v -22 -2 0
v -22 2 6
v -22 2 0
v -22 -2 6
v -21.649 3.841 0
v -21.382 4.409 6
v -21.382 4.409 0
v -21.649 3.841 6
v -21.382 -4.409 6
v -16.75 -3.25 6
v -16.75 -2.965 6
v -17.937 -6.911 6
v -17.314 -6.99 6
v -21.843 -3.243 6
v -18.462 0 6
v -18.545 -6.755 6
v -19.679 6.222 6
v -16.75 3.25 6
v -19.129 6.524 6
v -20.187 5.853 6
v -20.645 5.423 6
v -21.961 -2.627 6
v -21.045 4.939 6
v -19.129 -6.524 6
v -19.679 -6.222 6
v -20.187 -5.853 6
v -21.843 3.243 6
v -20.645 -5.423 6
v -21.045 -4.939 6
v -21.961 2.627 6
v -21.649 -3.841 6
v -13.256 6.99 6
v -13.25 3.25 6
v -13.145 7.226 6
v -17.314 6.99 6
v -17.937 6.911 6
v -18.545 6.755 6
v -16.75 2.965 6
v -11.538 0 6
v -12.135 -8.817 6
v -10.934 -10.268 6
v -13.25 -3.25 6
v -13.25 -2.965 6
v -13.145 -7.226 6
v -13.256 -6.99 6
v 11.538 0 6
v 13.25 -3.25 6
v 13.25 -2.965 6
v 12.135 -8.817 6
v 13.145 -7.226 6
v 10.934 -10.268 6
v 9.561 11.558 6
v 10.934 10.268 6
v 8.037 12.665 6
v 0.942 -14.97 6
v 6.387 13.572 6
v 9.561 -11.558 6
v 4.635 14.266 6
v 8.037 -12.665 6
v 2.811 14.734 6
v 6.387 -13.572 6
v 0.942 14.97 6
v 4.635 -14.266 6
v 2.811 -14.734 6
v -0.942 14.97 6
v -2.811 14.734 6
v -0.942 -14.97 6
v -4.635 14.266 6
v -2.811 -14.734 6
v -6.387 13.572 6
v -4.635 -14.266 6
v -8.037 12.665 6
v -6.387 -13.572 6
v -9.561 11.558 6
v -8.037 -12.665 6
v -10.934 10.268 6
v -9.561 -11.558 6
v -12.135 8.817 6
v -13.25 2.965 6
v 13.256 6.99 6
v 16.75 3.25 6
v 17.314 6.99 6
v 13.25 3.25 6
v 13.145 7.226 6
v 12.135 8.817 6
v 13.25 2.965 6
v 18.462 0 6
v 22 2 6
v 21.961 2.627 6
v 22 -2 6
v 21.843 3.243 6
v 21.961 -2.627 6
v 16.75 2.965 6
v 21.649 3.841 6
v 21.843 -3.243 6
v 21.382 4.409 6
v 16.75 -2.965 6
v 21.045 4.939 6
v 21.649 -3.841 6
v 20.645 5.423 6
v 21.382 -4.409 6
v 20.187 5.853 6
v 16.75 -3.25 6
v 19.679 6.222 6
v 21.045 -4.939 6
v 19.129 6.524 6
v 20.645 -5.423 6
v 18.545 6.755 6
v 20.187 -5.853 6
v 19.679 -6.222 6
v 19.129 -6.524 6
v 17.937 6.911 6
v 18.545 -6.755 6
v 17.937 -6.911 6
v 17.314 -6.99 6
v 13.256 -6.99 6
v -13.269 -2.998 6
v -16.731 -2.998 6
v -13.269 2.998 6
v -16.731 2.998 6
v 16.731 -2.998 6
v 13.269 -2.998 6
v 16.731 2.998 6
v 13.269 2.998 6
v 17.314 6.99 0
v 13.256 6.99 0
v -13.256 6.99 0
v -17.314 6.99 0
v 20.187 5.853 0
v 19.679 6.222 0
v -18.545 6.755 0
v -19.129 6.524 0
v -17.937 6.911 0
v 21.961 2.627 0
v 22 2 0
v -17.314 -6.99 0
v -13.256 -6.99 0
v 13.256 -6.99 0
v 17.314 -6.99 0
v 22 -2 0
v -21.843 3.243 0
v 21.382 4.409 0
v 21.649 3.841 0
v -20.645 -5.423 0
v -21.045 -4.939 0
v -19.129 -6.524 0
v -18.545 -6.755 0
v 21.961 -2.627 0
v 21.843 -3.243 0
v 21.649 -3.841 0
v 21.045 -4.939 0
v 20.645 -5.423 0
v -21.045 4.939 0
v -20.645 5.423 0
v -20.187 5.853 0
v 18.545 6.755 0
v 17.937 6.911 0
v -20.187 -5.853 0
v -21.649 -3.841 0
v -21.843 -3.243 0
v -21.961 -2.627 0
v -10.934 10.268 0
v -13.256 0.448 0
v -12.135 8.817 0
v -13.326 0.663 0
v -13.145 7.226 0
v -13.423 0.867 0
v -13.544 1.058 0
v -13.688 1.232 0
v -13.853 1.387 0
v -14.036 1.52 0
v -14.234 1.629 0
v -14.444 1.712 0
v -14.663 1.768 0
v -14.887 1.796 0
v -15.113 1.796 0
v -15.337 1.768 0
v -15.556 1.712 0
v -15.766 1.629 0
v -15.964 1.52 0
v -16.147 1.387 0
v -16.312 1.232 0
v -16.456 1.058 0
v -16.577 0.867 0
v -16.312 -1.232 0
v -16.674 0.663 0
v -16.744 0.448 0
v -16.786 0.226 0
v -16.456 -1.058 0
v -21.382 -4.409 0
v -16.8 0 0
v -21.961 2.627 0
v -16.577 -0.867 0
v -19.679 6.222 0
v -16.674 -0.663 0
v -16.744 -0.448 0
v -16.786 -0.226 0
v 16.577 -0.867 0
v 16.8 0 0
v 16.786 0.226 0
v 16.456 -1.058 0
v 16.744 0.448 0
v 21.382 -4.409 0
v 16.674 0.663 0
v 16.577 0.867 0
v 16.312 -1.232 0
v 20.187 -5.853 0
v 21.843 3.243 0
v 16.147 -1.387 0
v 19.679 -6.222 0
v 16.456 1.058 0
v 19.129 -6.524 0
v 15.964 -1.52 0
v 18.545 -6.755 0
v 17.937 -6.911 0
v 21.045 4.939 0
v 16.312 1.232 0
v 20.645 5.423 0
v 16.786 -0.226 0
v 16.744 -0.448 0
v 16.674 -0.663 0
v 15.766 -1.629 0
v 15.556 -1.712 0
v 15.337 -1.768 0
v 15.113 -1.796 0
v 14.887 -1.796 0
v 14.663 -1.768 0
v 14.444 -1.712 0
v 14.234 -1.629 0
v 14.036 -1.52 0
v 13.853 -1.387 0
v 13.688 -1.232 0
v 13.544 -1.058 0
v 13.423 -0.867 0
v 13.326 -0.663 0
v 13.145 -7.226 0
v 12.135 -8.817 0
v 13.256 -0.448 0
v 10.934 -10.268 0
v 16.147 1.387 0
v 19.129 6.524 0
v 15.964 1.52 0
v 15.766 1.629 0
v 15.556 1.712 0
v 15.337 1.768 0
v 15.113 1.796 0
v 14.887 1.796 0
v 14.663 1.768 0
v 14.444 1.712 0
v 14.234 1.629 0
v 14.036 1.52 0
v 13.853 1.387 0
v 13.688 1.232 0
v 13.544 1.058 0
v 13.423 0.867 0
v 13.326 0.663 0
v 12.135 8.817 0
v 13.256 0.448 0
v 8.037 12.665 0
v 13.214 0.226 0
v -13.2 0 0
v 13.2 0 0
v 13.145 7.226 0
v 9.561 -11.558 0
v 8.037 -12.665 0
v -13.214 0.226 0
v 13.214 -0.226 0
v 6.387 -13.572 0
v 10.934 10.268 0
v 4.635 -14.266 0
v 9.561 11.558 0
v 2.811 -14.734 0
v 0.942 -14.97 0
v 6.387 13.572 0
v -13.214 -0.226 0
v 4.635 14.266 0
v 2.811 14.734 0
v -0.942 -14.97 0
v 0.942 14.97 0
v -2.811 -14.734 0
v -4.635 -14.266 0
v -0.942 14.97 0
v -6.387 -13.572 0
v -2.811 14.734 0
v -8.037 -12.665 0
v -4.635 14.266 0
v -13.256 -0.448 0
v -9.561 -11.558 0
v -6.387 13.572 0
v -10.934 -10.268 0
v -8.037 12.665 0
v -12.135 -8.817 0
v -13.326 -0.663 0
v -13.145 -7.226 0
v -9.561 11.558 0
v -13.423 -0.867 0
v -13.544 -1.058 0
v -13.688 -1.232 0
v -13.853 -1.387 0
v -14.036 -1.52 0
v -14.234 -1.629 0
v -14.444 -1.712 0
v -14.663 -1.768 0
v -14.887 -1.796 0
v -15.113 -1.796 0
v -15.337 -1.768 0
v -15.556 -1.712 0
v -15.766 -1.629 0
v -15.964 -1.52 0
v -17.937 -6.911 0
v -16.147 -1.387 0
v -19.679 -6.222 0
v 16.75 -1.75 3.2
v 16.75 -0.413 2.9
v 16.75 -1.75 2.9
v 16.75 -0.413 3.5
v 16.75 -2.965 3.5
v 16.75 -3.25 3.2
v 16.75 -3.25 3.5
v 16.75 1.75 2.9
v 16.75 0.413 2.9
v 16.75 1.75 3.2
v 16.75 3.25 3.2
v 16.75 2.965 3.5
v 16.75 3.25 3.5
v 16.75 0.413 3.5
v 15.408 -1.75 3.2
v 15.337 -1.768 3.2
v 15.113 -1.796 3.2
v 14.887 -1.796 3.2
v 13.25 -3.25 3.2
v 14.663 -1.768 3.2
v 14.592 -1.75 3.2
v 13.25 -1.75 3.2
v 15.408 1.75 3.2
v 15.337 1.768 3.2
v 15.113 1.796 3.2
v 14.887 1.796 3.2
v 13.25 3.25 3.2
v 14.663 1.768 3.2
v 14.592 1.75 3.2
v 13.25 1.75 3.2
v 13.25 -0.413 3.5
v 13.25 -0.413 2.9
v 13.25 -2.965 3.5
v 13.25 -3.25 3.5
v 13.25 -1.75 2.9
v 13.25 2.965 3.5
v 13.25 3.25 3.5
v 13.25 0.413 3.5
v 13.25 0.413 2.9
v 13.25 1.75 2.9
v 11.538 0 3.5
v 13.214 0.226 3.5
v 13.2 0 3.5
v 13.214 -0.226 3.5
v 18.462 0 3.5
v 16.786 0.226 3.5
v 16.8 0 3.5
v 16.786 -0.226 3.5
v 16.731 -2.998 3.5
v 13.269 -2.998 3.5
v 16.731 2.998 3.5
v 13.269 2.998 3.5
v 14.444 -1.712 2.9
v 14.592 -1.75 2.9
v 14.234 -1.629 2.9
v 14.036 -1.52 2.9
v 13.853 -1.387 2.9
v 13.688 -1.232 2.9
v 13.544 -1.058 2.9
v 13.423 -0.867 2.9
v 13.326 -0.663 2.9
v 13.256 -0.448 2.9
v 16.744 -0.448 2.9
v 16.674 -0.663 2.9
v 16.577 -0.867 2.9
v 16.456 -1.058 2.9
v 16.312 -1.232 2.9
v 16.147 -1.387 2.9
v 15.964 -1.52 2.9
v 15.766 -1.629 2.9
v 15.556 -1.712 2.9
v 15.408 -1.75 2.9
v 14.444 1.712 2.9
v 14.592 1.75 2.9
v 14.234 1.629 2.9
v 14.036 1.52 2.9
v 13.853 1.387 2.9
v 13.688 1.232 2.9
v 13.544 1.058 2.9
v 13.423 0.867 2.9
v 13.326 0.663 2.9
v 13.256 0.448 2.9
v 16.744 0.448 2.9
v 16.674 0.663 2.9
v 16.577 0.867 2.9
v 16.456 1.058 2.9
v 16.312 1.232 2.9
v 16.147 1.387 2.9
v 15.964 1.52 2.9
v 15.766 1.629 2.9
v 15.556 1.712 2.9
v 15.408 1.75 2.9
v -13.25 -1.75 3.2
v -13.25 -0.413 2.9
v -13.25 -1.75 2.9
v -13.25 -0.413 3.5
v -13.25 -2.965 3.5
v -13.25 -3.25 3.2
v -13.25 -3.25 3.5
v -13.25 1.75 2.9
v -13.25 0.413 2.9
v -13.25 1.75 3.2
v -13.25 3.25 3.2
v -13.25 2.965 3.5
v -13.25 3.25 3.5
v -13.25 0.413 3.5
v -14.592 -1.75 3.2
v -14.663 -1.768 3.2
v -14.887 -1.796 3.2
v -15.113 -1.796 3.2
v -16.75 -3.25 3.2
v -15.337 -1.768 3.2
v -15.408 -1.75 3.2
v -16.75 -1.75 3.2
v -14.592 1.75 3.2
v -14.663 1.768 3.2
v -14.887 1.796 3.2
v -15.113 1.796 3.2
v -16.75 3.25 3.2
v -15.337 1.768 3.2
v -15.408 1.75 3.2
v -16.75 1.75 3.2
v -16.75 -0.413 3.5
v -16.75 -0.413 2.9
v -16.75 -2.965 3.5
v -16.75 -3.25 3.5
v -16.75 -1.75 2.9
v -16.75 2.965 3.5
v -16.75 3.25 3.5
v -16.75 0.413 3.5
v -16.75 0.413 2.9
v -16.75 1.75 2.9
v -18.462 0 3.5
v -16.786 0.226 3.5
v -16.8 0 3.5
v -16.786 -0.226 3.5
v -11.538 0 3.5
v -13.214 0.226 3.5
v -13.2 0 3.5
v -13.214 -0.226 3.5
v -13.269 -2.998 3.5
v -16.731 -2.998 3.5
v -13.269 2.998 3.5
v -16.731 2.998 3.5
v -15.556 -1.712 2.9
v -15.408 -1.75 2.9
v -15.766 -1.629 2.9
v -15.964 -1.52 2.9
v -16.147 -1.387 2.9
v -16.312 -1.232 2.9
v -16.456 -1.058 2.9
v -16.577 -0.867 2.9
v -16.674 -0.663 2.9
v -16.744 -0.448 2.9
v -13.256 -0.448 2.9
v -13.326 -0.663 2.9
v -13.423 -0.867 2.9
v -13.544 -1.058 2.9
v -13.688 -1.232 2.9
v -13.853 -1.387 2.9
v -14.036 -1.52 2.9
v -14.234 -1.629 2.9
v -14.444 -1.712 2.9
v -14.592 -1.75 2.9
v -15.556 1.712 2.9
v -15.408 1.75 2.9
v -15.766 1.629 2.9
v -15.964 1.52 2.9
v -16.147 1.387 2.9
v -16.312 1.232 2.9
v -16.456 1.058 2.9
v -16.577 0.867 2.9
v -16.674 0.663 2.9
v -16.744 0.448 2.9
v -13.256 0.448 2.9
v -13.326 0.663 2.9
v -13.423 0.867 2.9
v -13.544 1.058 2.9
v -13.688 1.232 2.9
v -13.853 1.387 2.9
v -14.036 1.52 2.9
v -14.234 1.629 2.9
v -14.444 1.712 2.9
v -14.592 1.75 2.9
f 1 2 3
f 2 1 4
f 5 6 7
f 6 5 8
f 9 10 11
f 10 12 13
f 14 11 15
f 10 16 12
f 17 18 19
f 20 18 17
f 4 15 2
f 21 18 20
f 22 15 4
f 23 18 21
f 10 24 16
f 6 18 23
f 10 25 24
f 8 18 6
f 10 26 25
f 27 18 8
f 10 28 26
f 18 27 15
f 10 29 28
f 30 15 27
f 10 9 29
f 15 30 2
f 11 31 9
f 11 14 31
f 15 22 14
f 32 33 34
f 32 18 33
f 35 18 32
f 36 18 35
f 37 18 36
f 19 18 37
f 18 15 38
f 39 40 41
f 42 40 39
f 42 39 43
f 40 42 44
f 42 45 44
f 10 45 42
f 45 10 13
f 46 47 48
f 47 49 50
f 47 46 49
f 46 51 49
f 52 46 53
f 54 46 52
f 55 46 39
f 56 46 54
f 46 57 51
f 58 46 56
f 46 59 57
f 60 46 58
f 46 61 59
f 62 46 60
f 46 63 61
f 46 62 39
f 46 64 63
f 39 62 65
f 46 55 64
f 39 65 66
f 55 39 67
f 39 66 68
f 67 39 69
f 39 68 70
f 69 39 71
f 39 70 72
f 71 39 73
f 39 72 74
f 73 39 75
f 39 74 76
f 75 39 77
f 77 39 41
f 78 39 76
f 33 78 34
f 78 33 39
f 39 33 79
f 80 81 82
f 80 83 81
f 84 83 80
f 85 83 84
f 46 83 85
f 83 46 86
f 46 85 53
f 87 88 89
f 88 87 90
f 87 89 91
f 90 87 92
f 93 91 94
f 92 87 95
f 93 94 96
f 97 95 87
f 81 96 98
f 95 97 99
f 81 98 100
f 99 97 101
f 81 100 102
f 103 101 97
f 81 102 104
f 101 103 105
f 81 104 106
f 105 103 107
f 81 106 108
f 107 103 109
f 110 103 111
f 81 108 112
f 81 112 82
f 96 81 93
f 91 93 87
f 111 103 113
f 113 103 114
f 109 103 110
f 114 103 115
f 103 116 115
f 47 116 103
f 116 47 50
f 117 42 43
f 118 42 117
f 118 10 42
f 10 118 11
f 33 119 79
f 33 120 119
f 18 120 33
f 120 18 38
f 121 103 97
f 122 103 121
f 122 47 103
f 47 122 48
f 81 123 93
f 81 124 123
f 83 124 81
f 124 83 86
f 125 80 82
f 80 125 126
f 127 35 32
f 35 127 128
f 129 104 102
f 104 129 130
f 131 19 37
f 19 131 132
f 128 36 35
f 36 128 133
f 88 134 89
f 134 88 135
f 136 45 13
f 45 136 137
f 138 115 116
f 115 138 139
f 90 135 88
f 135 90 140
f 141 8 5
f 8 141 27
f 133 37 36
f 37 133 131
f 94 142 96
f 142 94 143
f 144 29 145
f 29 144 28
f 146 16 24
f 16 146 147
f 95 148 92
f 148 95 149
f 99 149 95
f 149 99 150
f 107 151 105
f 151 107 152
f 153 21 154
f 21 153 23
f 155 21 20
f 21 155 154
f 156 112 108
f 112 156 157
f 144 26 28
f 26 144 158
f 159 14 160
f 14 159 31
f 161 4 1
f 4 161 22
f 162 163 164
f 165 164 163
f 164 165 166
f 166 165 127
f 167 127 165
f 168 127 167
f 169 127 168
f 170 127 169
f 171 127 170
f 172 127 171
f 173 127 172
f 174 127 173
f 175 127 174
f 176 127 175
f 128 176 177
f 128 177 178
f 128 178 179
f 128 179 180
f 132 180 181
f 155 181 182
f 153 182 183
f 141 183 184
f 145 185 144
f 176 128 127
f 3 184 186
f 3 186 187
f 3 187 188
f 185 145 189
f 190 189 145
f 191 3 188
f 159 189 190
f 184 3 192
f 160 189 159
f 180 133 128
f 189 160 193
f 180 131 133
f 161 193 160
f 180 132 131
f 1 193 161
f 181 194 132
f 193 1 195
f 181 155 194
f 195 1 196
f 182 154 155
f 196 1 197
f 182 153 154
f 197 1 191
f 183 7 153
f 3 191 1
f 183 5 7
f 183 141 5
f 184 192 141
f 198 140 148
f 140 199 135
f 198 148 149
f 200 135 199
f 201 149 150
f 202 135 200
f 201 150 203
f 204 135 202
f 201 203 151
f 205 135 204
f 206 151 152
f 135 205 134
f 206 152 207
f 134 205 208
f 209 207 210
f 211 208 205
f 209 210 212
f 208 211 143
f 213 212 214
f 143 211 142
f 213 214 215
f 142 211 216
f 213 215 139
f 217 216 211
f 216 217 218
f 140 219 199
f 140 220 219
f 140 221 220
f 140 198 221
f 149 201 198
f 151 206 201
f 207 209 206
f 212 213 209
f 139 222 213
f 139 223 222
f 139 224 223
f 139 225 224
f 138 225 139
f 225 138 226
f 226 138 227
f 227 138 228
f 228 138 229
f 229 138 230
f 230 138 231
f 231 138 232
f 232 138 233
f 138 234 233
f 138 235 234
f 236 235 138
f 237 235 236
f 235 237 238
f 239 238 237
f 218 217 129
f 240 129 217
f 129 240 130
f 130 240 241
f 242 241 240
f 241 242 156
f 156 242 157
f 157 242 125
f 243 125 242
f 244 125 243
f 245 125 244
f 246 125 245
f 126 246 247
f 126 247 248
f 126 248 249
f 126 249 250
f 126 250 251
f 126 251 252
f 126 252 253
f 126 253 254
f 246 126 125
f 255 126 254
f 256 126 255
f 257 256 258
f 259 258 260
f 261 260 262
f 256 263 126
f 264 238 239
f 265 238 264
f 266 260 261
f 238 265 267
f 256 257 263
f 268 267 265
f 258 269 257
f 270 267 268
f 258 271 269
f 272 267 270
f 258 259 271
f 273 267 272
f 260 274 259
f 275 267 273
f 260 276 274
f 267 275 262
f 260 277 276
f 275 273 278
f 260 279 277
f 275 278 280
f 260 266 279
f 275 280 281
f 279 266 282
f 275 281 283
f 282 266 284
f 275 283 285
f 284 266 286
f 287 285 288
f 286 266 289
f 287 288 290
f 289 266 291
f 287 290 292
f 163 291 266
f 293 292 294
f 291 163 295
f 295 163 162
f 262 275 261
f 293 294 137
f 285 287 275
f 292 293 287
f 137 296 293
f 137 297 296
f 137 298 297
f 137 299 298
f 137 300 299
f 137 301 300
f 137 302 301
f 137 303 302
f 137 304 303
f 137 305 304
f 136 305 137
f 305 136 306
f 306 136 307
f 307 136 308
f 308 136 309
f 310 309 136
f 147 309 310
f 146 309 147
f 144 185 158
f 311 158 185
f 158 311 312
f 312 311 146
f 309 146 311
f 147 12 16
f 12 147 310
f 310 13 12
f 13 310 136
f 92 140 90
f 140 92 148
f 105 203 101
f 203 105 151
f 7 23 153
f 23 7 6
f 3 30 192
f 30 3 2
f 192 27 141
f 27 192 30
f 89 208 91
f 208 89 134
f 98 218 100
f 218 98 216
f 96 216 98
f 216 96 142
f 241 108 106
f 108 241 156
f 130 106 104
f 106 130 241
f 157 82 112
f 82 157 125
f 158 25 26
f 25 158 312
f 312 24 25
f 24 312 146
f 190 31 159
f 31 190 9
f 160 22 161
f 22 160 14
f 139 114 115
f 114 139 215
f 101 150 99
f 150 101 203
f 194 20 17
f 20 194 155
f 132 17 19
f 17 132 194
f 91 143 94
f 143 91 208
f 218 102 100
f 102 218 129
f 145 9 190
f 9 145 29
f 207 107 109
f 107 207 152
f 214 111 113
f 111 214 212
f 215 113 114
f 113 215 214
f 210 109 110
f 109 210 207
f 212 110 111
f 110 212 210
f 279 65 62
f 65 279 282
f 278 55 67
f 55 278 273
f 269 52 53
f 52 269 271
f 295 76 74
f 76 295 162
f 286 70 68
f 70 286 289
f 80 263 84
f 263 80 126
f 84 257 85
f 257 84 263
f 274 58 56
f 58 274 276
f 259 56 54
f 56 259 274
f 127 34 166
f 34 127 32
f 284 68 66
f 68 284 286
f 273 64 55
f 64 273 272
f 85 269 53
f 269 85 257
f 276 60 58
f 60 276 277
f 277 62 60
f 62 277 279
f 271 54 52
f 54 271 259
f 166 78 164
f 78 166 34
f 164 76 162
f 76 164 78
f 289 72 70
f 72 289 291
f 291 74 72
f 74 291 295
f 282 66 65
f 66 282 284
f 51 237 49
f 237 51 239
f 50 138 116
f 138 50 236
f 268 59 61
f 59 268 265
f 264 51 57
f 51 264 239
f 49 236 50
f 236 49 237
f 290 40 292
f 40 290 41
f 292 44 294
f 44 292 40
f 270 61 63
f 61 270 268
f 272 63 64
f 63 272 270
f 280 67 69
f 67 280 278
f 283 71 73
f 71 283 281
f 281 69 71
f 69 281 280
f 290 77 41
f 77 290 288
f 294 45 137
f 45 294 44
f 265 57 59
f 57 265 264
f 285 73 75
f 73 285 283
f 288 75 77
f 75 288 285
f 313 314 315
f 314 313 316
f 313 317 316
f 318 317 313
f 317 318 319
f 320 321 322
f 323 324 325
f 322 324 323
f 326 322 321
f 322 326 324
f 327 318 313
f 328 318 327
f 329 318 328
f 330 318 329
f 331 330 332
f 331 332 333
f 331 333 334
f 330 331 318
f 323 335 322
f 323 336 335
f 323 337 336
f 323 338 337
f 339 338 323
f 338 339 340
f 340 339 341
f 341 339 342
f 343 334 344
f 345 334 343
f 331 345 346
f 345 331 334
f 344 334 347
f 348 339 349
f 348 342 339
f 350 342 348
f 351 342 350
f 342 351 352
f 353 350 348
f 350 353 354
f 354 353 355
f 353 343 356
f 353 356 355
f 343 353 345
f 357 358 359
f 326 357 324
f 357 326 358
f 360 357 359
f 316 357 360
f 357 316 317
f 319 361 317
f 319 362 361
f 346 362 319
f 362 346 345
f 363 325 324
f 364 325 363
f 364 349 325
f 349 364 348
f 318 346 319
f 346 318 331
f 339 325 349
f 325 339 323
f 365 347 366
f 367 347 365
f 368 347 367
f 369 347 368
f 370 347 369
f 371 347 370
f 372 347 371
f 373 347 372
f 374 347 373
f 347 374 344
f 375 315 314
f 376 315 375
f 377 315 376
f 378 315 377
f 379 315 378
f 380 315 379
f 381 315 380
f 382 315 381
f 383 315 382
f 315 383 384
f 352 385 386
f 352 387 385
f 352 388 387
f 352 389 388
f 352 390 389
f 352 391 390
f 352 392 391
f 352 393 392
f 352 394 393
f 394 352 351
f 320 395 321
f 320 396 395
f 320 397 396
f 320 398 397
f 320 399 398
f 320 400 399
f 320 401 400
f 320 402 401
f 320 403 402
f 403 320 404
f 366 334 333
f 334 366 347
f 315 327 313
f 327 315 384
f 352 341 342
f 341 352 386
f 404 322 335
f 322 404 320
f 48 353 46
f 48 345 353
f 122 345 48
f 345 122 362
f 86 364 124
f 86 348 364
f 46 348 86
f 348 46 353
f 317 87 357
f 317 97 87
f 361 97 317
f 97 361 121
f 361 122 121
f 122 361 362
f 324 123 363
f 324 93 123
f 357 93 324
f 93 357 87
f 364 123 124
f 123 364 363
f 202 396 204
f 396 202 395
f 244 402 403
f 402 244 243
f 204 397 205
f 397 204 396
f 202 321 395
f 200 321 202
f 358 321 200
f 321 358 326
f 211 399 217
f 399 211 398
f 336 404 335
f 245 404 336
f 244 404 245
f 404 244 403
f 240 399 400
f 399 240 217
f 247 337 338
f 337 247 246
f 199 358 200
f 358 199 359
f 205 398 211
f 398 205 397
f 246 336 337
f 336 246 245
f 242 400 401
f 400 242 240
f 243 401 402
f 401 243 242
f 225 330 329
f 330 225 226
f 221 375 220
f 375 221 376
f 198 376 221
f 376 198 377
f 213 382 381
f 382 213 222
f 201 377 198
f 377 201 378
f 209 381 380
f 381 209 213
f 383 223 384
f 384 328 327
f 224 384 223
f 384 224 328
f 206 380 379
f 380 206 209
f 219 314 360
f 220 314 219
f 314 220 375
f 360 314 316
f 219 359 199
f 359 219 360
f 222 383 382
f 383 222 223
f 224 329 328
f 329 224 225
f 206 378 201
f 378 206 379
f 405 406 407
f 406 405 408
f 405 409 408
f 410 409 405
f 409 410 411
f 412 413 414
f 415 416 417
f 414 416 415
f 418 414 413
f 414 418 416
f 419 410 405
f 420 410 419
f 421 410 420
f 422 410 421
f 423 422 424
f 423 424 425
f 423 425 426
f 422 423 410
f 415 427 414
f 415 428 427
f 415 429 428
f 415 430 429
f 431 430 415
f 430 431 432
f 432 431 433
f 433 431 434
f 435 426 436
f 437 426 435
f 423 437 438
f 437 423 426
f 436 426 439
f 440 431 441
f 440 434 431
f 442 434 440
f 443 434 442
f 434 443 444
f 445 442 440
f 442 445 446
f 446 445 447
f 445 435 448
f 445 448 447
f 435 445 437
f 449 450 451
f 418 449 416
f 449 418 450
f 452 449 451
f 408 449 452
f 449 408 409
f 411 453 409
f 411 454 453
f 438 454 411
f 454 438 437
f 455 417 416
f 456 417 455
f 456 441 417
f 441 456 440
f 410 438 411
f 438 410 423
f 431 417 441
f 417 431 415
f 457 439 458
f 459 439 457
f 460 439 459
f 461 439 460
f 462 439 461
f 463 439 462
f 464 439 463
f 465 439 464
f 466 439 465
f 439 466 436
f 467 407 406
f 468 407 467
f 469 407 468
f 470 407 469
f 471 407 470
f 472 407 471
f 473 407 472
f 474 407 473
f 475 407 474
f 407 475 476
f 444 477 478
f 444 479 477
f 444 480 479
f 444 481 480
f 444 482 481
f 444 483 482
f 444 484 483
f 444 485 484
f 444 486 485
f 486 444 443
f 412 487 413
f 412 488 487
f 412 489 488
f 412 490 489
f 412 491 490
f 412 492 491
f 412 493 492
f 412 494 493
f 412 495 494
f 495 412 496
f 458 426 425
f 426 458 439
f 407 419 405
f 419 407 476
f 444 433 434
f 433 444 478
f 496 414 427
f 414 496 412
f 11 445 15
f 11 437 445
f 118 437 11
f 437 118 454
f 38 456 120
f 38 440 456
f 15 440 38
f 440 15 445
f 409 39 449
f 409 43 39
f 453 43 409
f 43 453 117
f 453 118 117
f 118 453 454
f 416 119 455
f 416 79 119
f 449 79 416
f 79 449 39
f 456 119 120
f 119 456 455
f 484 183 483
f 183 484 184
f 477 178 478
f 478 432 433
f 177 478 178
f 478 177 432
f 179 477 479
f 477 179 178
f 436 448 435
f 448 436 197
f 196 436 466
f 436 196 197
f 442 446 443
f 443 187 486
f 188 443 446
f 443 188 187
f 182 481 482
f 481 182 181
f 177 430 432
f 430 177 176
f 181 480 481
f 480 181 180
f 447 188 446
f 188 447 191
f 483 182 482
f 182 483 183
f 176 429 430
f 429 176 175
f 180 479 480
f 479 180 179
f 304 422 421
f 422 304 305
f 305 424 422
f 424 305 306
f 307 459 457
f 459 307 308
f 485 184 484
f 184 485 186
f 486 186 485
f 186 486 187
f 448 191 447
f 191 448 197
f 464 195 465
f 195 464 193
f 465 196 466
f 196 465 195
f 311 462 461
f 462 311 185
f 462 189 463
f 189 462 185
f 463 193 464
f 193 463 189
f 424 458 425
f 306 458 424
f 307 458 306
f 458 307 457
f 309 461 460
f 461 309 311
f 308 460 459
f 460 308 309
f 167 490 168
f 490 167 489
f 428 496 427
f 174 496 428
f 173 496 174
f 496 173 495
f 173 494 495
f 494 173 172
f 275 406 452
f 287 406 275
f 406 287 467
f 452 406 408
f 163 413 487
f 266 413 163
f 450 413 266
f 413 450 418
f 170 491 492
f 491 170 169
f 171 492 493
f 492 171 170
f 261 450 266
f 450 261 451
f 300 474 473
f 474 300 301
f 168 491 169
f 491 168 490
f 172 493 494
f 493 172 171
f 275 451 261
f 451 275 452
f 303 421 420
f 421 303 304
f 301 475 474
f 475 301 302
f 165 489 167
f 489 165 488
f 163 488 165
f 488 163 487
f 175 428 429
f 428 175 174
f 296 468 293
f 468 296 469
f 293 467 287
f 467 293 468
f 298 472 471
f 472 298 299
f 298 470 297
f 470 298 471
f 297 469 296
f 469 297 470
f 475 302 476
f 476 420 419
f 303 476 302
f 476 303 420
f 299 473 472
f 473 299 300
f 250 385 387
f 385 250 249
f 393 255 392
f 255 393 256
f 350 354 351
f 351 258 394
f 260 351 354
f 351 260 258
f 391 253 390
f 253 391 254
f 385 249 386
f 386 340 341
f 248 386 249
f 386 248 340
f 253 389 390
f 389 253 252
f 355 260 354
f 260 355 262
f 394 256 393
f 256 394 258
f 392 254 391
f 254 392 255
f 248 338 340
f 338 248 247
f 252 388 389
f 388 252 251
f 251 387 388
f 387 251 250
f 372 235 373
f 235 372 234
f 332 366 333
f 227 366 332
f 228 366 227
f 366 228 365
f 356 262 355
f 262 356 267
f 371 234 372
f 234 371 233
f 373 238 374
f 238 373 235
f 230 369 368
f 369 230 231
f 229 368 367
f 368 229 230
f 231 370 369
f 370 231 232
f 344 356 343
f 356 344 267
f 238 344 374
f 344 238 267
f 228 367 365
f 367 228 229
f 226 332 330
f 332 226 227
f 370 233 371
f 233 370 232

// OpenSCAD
$fn = 50;


difference() {
	union() {
		hull() {
			translate(v = [-17.0000000000, 2.0000000000, 0]) {
				cylinder(h = 6, r = 5);
			}
			translate(v = [17.0000000000, 2.0000000000, 0]) {
				cylinder(h = 6, r = 5);
			}
			translate(v = [-17.0000000000, -2.0000000000, 0]) {
				cylinder(h = 6, r = 5);
			}
			translate(v = [17.0000000000, -2.0000000000, 0]) {
				cylinder(h = 6, r = 5);
			}
		}
		cylinder(h = 6, r = 15.0000000000);
	}
	union() {
		translate(v = [15.0000000000, 0, -20]) {
			rotate(a = [0, 180, 0]) {
				difference() {
					union() {
						translate(v = [0, 0, -26.0000000000]) {
							rotate(a = [0, 0, 0]) {
								difference() {
									union() {
										#translate(v = [-1.7500000000, -3.2500000000, -0.3000000000]) {
											cube(size = [3.5000000000, 6.5000000000, 0.3000000000]);
										}
										#translate(v = [-1.7500000000, -1.7500000000, -0.6000000000]) {
											cube(size = [3.5000000000, 3.5000000000, 0.3000000000]);
										}
										#translate(v = [-1.7500000000, -3.2500000000, 2.5000000000]) {
											cube(size = [3.5000000000, 6.5000000000, 0.3000000000]);
										}
										#translate(v = [-1.7500000000, -1.7500000000, 2.8000000000]) {
											cube(size = [3.5000000000, 3.5000000000, 0.3000000000]);
										}
										#linear_extrude(height = 2.5000000000) {
											polygon(points = [[3.4620000000, 0.0000000000], [1.7310000000, 2.9981799479], [-1.7310000000, 2.9981799479], [-3.4620000000, 0.0000000000], [-1.7310000000, -2.9981799479], [1.7310000000, -2.9981799479]]);
										}
										#translate(v = [-1.7500000000, -3.2500000000, -0.3000000000]) {
											cube(size = [3.5000000000, 6.5000000000, 0.3000000000]);
										}
										#translate(v = [-1.7500000000, -1.7500000000, -0.6000000000]) {
											cube(size = [3.5000000000, 3.5000000000, 0.3000000000]);
										}
										#translate(v = [-1.7500000000, -3.2500000000, 2.5000000000]) {
											cube(size = [3.5000000000, 6.5000000000, 0.3000000000]);
										}
										#translate(v = [-1.7500000000, -1.7500000000, 2.8000000000]) {
											cube(size = [3.5000000000, 3.5000000000, 0.3000000000]);
										}
										#translate(v = [-1.7500000000, -3.2500000000, -0.3000000000]) {
											cube(size = [3.5000000000, 6.5000000000, 0.3000000000]);
										}
										#translate(v = [-1.7500000000, -1.7500000000, -0.6000000000]) {
											cube(size = [3.5000000000, 3.5000000000, 0.3000000000]);
										}
										#translate(v = [-1.7500000000, -3.2500000000, 2.5000000000]) {
											cube(size = [3.5000000000, 6.5000000000, 0.3000000000]);
										}
										#translate(v = [-1.7500000000, -1.7500000000, 2.8000000000]) {
											cube(size = [3.5000000000, 3.5000000000, 0.3000000000]);
										}
									}
									union();
								}
							}
						}
						translate(v = [0, 0, -26.0000000000]) {
							rotate(a = [0, 0, 0]) {
								difference() {
									union() {
										#translate(v = [-1.7500000000, -3.2500000000, -0.3000000000]) {
											cube(size = [3.5000000000, 6.5000000000, 0.3000000000]);
										}
										#translate(v = [-1.7500000000, -1.7500000000, -0.6000000000]) {
											cube(size = [3.5000000000, 3.5000000000, 0.3000000000]);
										}
										#translate(v = [-1.7500000000, -3.2500000000, 2.5000000000]) {
											cube(size = [3.5000000000, 6.5000000000, 0.3000000000]);
										}
										#translate(v = [-1.7500000000, -1.7500000000, 2.8000000000]) {
											cube(size = [3.5000000000, 3.5000000000, 0.3000000000]);
										}
										#linear_extrude(height = 2.5000000000) {
											polygon(points = [[3.4620000000, 0.0000000000], [1.7310000000, 2.9981799479], [-1.7310000000, 2.9981799479], [-3.4620000000, 0.0000000000], [-1.7310000000, -2.9981799479], [1.7310000000, -2.9981799479]]);
										}
										#translate(v = [-1.7500000000, -3.2500000000, -0.3000000000]) {
											cube(size = [3.5000000000, 6.5000000000, 0.3000000000]);
										}
										#translate(v = [-1.7500000000, -1.7500000000, -0.6000000000]) {
											cube(size = [3.5000000000, 3.5000000000, 0.3000000000]);
										}
										#translate(v = [-1.7500000000, -3.2500000000, 2.5000000000]) {
											cube(size = [3.5000000000, 6.5000000000, 0.3000000000]);
										}
										#translate(v = [-1.7500000000, -1.7500000000, 2.8000000000]) {
											cube(size = [3.5000000000, 3.5000000000, 0.3000000000]);
										}
										#translate(v = [-1.7500000000, -3.2500000000, -0.3000000000]) {
											cube(size = [3.5000000000, 6.5000000000, 0.3000000000]);
										}
										#translate(v = [-1.7500000000, -1.7500000000, -0.6000000000]) {
											cube(size = [3.5000000000, 3.5000000000, 0.3000000000]);
										}
										#translate(v = [-1.7500000000, -3.2500000000, 2.5000000000]) {
											cube(size = [3.5000000000, 6.5000000000, 0.3000000000]);
										}
										#translate(v = [-1.7500000000, -1.7500000000, 2.8000000000]) {
											cube(size = [3.5000000000, 3.5000000000, 0.3000000000]);
										}
									}
									union();
								}
							}
						}
						translate(v = [0, 0, -26.0000000000]) {
							rotate(a = [0, 0, 0]) {
								difference() {
									union() {
										#translate(v = [-1.7500000000, -3.2500000000, -0.3000000000]) {
											cube(size = [3.5000000000, 6.5000000000, 0.3000000000]);
										}
										#translate(v = [-1.7500000000, -1.7500000000, -0.6000000000]) {
											cube(size = [3.5000000000, 3.5000000000, 0.3000000000]);
										}
										#translate(v = [-1.7500000000, -3.2500000000, 2.5000000000]) {
											cube(size = [3.5000000000, 6.5000000000, 0.3000000000]);
										}
										#translate(v = [-1.7500000000, -1.7500000000, 2.8000000000]) {
											cube(size = [3.5000000000, 3.5000000000, 0.3000000000]);
										}
										#linear_extrude(height = 2.5000000000) {
											polygon(points = [[3.4620000000, 0.0000000000], [1.7310000000, 2.9981799479], [-1.7310000000, 2.9981799479], [-3.4620000000, 0.0000000000], [-1.7310000000, -2.9981799479], [1.7310000000, -2.9981799479]]);
										}
										#translate(v = [-1.7500000000, -3.2500000000, -0.3000000000]) {
											cube(size = [3.5000000000, 6.5000000000, 0.3000000000]);
										}
										#translate(v = [-1.7500000000, -1.7500000000, -0.6000000000]) {
											cube(size = [3.5000000000, 3.5000000000, 0.3000000000]);
										}
										#translate(v = [-1.7500000000, -3.2500000000, 2.5000000000]) {
											cube(size = [3.5000000000, 6.5000000000, 0.3000000000]);
										}
										#translate(v = [-1.7500000000, -1.7500000000, 2.8000000000]) {
											cube(size = [3.5000000000, 3.5000000000, 0.3000000000]);
										}
										#translate(v = [-1.7500000000, -3.2500000000, -0.3000000000]) {
											cube(size = [3.5000000000, 6.5000000000, 0.3000000000]);
										}
										#translate(v = [-1.7500000000, -1.7500000000, -0.6000000000]) {
											cube(size = [3.5000000000, 3.5000000000, 0.3000000000]);
										}
										#translate(v = [-1.7500000000, -3.2500000000, 2.5000000000]) {
											cube(size = [3.5000000000, 6.5000000000, 0.3000000000]);
										}
										#translate(v = [-1.7500000000, -1.7500000000, 2.8000000000]) {
											cube(size = [3.5000000000, 3.5000000000, 0.3000000000]);
										}
									}
									union();
								}
							}
						}
						#translate(v = [0, 0, -26.0000000000]) {
							cylinder(h = 26, r = 1.5000000000);
						}
						#translate(v = [0, 0, -1.9000000000]) {
							cylinder(h = 1.9000000000, r1 = 1.8000000000, r2 = 3.6000000000);
						}
						#translate(v = [0, 0, -26.0000000000]) {
							cylinder(h = 26, r = 1.8000000000);
						}
						#translate(v = [0, 0, -26.0000000000]) {
							cylinder(h = 26, r = 1.5000000000);
						}
					}
					union();
				}
			}
		}
		translate(v = [-15.0000000000, 0, -20]) {
			rotate(a = [0, 180, 0]) {
				difference() {
					union() {
						translate(v = [0, 0, -26.0000000000]) {
							rotate(a = [0, 0, 0]) {
								difference() {
									union() {
										#translate(v = [-1.7500000000, -3.2500000000, -0.3000000000]) {
											cube(size = [3.5000000000, 6.5000000000, 0.3000000000]);
										}
										#translate(v = [-1.7500000000, -1.7500000000, -0.6000000000]) {
											cube(size = [3.5000000000, 3.5000000000, 0.3000000000]);
										}
										#translate(v = [-1.7500000000, -3.2500000000, 2.5000000000]) {
											cube(size = [3.5000000000, 6.5000000000, 0.3000000000]);
										}
										#translate(v = [-1.7500000000, -1.7500000000, 2.8000000000]) {
											cube(size = [3.5000000000, 3.5000000000, 0.3000000000]);
										}
										#linear_extrude(height = 2.5000000000) {
											polygon(points = [[3.4620000000, 0.0000000000], [1.7310000000, 2.9981799479], [-1.7310000000, 2.9981799479], [-3.4620000000, 0.0000000000], [-1.7310000000, -2.9981799479], [1.7310000000, -2.9981799479]]);
										}
										#translate(v = [-1.7500000000, -3.2500000000, -0.3000000000]) {
											cube(size = [3.5000000000, 6.5000000000, 0.3000000000]);
										}
										#translate(v = [-1.7500000000, -1.7500000000, -0.6000000000]) {
											cube(size = [3.5000000000, 3.5000000000, 0.3000000000]);
										}
										#translate(v = [-1.7500000000, -3.2500000000, 2.5000000000]) {
											cube(size = [3.5000000000, 6.5000000000, 0.3000000000]);
										}
										#translate(v = [-1.7500000000, -1.7500000000, 2.8000000000]) {
											cube(size = [3.5000000000, 3.5000000000, 0.3000000000]);
										}
										#translate(v = [-1.7500000000, -3.2500000000, -0.3000000000]) {
											cube(size = [3.5000000000, 6.5000000000, 0.3000000000]);
										}
										#translate(v = [-1.7500000000, -1.7500000000, -0.6000000000]) {
											cube(size = [3.5000000000, 3.5000000000, 0.3000000000]);
										}
										#translate(v = [-1.7500000000, -3.2500000000, 2.5000000000]) {
											cube(size = [3.5000000000, 6.5000000000, 0.3000000000]);
										}
										#translate(v = [-1.7500000000, -1.7500000000, 2.8000000000]) {
											cube(size = [3.5000000000, 3.5000000000, 0.3000000000]);
										}
									}
									union();
								}
							}
						}
						translate(v = [0, 0, -26.0000000000]) {
							rotate(a = [0, 0, 0]) {
								difference() {
									union() {
										#translate(v = [-1.7500000000, -3.2500000000, -0.3000000000]) {
											cube(size = [3.5000000000, 6.5000000000, 0.3000000000]);
										}
										#translate(v = [-1.7500000000, -1.7500000000, -0.6000000000]) {
											cube(size = [3.5000000000, 3.5000000000, 0.3000000000]);
										}
										#translate(v = [-1.7500000000, -3.2500000000, 2.5000000000]) {
											cube(size = [3.5000000000, 6.5000000000, 0.3000000000]);
										}
										#translate(v = [-1.7500000000, -1.7500000000, 2.8000000000]) {
											cube(size = [3.5000000000, 3.5000000000, 0.3000000000]);
										}
										#linear_extrude(height = 2.5000000000) {
											polygon(points = [[3.4620000000, 0.0000000000], [1.7310000000, 2.9981799479], [-1.7310000000, 2.9981799479], [-3.4620000000, 0.0000000000], [-1.7310000000, -2.9981799479], [1.7310000000, -2.9981799479]]);
										}
										#translate(v = [-1.7500000000, -3.2500000000, -0.3000000000]) {
											cube(size = [3.5000000000, 6.5000000000, 0.3000000000]);
										}
										#translate(v = [-1.7500000000, -1.7500000000, -0.6000000000]) {
											cube(size = [3.5000000000, 3.5000000000, 0.3000000000]);
										}
										#translate(v = [-1.7500000000, -3.2500000000, 2.5000000000]) {
											cube(size = [3.5000000000, 6.5000000000, 0.3000000000]);
										}
										#translate(v = [-1.7500000000, -1.7500000000, 2.8000000000]) {
											cube(size = [3.5000000000, 3.5000000000, 0.3000000000]);
										}
										#translate(v = [-1.7500000000, -3.2500000000, -0.3000000000]) {
											cube(size = [3.5000000000, 6.5000000000, 0.3000000000]);
										}
										#translate(v = [-1.7500000000, -1.7500000000, -0.6000000000]) {
											cube(size = [3.5000000000, 3.5000000000, 0.3000000000]);
										}
										#translate(v = [-1.7500000000, -3.2500000000, 2.5000000000]) {
											cube(size = [3.5000000000, 6.5000000000, 0.3000000000]);
										}
										#translate(v = [-1.7500000000, -1.7500000000, 2.8000000000]) {
											cube(size = [3.5000000000, 3.5000000000, 0.3000000000]);
										}
									}
									union();
								}
							}
						}
						translate(v = [0, 0, -26.0000000000]) {
							rotate(a = [0, 0, 0]) {
								difference() {
									union() {
										#translate(v = [-1.7500000000, -3.2500000000, -0.3000000000]) {
											cube(size = [3.5000000000, 6.5000000000, 0.3000000000]);
										}
										#translate(v = [-1.7500000000, -1.7500000000, -0.6000000000]) {
											cube(size = [3.5000000000, 3.5000000000, 0.3000000000]);
										}
										#translate(v = [-1.7500000000, -3.2500000000, 2.5000000000]) {
											cube(size = [3.5000000000, 6.5000000000, 0.3000000000]);
										}
										#translate(v = [-1.7500000000, -1.7500000000, 2.8000000000]) {
											cube(size = [3.5000000000, 3.5000000000, 0.3000000000]);
										}
										#linear_extrude(height = 2.5000000000) {
											polygon(points = [[3.4620000000, 0.0000000000], [1.7310000000, 2.9981799479], [-1.7310000000, 2.9981799479], [-3.4620000000, 0.0000000000], [-1.7310000000, -2.9981799479], [1.7310000000, -2.9981799479]]);
										}
										#translate(v = [-1.7500000000, -3.2500000000, -0.3000000000]) {
											cube(size = [3.5000000000, 6.5000000000, 0.3000000000]);
										}
										#translate(v = [-1.7500000000, -1.7500000000, -0.6000000000]) {
											cube(size = [3.5000000000, 3.5000000000, 0.3000000000]);
										}
										#translate(v = [-1.7500000000, -3.2500000000, 2.5000000000]) {
											cube(size = [3.5000000000, 6.5000000000, 0.3000000000]);
										}
										#translate(v = [-1.7500000000, -1.7500000000, 2.8000000000]) {
											cube(size = [3.5000000000, 3.5000000000, 0.3000000000]);
										}
										#translate(v = [-1.7500000000, -3.2500000000, -0.3000000000]) {
											cube(size = [3.5000000000, 6.5000000000, 0.3000000000]);
										}
										#translate(v = [-1.7500000000, -1.7500000000, -0.6000000000]) {
											cube(size = [3.5000000000, 3.5000000000, 0.3000000000]);
										}
										#translate(v = [-1.7500000000, -3.2500000000, 2.5000000000]) {
											cube(size = [3.5000000000, 6.5000000000, 0.3000000000]);
										}
										#translate(v = [-1.7500000000, -1.7500000000, 2.8000000000]) {
											cube(size = [3.5000000000, 3.5000000000, 0.3000000000]);
										}
									}
									union();
								}
							}
						}
						#translate(v = [0, 0, -26.0000000000]) {
							cylinder(h = 26, r = 1.5000000000);
						}
						#translate(v = [0, 0, -1.9000000000]) {
							cylinder(h = 1.9000000000, r1 = 1.8000000000, r2 = 3.6000000000);
						}
						#translate(v = [0, 0, -26.0000000000]) {
							cylinder(h = 26, r = 1.8000000000);
						}
						#translate(v = [0, 0, -26.0000000000]) {
							cylinder(h = 26, r = 1.5000000000);
						}
					}
					union();
				}
			}
		}
		translate(v = [-15.0000000000, 0.0000000000, 0]) {
			cylinder(h = 6, r = 1.8000000000);
		}
		translate(v = [15.0000000000, 0.0000000000, 0]) {
			cylinder(h = 6, r = 1.8000000000);
		}
		translate(v = [-15.0000000000, 0.0000000000, 0]) {
			cylinder(h = 6, r = 1.8000000000);
		}
		translate(v = [15.0000000000, 0.0000000000, 0]) {
			cylinder(h = 6, r = 1.8000000000);
		}
		translate(v = [-15.0000000000, 0.0000000000, 0]) {
			cylinder(h = 6, r = 1.8000000000);
		}
		translate(v = [15.0000000000, 0.0000000000, 0]) {
			cylinder(h = 6, r = 1.8000000000);
		}
		translate(v = [-15.0000000000, 0.0000000000, 0]) {
			cylinder(h = 6, r = 1.8000000000);
		}
		translate(v = [15.0000000000, 0.0000000000, 0]) {
			cylinder(h = 6, r = 1.8000000000);
		}
	}
}
